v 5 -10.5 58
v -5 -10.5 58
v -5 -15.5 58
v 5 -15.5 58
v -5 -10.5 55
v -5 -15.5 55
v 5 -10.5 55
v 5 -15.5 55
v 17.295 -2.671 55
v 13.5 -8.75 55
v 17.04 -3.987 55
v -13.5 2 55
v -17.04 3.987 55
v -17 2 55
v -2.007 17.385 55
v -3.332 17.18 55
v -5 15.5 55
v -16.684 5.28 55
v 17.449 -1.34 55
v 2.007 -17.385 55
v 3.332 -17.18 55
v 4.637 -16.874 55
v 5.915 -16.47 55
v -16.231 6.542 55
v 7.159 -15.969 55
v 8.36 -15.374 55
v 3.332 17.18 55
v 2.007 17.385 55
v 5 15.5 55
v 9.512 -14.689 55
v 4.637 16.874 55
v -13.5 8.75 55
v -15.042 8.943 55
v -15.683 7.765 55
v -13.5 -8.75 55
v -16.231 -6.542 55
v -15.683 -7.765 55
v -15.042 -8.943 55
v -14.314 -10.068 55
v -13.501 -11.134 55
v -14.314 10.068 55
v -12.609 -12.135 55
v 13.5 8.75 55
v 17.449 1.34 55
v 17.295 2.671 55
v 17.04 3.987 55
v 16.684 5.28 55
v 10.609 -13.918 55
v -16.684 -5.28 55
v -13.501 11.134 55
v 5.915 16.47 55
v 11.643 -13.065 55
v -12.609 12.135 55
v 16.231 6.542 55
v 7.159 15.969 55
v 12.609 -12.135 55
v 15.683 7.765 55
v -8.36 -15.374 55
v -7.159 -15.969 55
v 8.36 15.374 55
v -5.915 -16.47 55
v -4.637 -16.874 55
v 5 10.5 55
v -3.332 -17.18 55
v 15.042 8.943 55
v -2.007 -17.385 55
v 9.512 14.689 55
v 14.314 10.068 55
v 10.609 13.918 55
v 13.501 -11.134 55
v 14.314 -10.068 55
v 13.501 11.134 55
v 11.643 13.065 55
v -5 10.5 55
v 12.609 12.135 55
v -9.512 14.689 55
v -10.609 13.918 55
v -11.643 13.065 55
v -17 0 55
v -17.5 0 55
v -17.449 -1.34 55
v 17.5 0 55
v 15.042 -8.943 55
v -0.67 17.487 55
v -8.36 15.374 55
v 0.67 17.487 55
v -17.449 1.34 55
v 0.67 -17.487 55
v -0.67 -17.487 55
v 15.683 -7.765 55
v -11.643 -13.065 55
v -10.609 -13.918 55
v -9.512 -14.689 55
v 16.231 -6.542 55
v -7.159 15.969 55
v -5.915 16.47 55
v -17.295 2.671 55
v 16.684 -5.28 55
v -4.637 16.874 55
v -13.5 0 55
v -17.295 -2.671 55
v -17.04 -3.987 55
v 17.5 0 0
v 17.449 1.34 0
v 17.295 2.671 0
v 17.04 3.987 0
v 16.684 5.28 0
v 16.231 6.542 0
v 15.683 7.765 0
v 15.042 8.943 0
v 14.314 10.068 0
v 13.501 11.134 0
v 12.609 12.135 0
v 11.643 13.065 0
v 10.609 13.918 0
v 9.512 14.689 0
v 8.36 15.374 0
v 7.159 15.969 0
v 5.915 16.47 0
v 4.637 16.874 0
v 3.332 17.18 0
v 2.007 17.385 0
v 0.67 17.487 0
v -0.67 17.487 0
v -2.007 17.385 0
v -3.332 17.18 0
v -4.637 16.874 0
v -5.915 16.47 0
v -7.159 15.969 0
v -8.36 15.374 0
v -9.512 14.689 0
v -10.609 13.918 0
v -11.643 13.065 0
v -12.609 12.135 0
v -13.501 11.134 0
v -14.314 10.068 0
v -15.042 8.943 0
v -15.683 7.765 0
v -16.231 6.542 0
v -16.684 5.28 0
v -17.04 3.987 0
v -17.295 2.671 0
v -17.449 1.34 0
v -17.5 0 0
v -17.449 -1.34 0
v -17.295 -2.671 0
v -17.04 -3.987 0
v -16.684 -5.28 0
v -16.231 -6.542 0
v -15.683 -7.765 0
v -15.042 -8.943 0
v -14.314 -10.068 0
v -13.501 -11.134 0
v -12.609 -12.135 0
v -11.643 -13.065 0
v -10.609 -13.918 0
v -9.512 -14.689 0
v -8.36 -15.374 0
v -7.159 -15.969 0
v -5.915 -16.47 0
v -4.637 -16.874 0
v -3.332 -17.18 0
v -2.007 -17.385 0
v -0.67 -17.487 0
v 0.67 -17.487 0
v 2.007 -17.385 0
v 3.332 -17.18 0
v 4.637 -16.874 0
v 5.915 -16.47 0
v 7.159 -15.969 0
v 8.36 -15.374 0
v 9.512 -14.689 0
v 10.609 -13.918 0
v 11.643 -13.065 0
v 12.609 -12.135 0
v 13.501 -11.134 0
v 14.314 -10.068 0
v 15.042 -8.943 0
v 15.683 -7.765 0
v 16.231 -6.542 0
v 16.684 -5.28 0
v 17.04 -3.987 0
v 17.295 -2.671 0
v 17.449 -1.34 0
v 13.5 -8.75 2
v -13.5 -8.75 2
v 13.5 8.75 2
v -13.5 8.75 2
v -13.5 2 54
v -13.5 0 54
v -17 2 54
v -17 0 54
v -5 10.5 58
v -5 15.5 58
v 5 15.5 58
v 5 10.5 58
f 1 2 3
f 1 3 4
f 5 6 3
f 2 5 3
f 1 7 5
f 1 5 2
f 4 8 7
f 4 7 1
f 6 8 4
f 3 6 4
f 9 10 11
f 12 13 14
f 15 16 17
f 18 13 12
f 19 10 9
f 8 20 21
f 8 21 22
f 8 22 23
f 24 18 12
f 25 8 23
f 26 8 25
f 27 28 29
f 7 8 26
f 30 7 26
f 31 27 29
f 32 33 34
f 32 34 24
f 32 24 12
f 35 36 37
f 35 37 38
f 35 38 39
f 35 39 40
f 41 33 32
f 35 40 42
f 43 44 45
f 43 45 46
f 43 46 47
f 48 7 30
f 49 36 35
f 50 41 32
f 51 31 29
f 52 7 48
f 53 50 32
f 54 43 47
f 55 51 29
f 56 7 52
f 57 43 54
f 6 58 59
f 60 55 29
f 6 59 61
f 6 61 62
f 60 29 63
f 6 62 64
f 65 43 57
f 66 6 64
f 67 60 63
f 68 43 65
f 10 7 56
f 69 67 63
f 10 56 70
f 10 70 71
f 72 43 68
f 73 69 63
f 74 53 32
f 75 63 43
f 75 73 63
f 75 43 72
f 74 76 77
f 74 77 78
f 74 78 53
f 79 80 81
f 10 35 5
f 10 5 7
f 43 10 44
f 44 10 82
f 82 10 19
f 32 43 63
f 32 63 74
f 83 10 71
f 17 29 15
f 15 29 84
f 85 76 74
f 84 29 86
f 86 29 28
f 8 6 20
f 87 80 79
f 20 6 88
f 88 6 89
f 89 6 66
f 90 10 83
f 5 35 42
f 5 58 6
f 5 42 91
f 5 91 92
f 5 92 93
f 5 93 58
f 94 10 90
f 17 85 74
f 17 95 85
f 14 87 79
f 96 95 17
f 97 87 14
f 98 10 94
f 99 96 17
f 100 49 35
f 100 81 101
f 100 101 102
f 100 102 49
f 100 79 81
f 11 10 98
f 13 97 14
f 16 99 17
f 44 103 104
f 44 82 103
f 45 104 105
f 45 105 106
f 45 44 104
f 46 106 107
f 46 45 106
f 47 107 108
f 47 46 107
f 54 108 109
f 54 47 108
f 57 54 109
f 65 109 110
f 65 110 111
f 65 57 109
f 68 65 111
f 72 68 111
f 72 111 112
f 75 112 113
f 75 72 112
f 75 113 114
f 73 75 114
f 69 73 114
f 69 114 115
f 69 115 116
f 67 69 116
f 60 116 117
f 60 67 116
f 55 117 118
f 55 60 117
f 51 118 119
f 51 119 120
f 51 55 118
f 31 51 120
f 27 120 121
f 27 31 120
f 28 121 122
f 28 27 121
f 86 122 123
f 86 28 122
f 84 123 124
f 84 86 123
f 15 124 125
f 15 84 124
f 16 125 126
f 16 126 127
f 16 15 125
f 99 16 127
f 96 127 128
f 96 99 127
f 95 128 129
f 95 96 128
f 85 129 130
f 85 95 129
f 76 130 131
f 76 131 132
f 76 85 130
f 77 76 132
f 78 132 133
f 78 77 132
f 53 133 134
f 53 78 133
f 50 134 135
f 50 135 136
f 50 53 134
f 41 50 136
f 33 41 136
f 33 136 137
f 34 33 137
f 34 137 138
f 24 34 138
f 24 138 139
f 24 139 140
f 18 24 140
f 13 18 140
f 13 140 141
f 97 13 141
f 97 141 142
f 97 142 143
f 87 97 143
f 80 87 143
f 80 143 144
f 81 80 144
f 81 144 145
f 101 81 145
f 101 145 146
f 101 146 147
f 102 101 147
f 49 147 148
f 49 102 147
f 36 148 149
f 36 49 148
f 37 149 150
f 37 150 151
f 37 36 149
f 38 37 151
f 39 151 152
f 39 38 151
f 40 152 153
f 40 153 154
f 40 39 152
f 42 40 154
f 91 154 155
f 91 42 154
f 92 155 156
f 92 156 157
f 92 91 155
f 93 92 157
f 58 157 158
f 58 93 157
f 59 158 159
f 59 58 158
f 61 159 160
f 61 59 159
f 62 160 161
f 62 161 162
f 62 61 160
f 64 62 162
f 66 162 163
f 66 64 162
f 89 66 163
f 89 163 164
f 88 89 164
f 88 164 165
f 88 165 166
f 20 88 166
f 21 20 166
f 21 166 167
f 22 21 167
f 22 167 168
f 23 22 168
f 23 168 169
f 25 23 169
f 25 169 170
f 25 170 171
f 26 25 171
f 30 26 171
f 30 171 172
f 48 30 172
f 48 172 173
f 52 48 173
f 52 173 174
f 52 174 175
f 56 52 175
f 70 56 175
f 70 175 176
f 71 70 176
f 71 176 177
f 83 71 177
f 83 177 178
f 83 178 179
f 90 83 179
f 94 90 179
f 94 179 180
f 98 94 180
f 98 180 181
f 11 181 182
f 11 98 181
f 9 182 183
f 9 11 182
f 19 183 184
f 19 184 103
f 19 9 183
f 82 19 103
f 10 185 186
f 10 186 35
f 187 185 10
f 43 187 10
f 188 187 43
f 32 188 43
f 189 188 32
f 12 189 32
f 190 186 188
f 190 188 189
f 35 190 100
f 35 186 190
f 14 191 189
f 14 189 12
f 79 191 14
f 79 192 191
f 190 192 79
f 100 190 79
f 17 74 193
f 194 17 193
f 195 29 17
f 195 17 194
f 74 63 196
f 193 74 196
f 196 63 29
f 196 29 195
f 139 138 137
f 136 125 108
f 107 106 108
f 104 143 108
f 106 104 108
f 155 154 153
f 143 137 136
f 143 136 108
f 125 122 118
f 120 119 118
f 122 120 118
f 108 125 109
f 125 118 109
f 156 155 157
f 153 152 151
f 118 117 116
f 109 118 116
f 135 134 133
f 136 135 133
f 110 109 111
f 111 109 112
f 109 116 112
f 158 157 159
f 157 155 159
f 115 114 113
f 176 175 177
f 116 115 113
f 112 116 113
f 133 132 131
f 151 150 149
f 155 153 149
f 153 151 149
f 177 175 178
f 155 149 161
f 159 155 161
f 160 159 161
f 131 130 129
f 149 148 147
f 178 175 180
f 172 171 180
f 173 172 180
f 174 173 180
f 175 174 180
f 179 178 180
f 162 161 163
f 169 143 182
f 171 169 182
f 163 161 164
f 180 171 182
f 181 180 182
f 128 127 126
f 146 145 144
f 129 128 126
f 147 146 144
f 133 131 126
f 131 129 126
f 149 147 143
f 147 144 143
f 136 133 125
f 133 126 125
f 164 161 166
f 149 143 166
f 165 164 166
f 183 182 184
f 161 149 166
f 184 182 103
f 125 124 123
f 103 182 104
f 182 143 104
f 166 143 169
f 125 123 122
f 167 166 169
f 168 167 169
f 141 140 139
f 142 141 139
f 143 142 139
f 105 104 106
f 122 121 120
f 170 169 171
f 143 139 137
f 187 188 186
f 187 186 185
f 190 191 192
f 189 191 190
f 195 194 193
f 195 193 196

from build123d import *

# Parameters (mm, degrees)
BOX003_W       = 4
BOX003_H       = 2
BOX003_DEPTH   = 2
BOX_W          = 27
BOX_H          = 17.5
BOX_DEPTH      = 53
CYLINDER_R     = 17.5
CYLINDER_DEPTH = 55
BOX001_W       = 10
BOX001_H       = 5
BOX001_DEPTH   = 3
BOX002_W       = 10
BOX002_H       = 5
BOX002_DEPTH   = 3


with BuildPart() as box003:
    # Box003 → Box003 (new body)
    with BuildSketch(Plane(origin=(-17, 0, 54), x_dir=(1, 0, 0), z_dir=(0, 0, 1))):
        with Locations((2, 1)):
            Rectangle(BOX003_W, BOX003_H)
    extrude(amount=BOX003_DEPTH)


with BuildPart() as box:
    # Box → Box (new body)
    with BuildSketch(Plane(origin=(-13.5, -8.75, 2), x_dir=(1, 0, 0), z_dir=(0, 0, 1))):
        with Locations((13.5, 8.75)):
            Rectangle(BOX_W, BOX_H)
    extrude(amount=BOX_DEPTH)


with BuildPart() as cut:
    # Cylinder → Cylinder (new body)
    with BuildSketch(Plane.XY):
        Circle(CYLINDER_R)
    extrude(amount=CYLINDER_DEPTH)

    # Cut: cut Box
    add(box.part, mode=Mode.SUBTRACT)


with BuildPart() as fusion:
    # Box001 → Box001 (new body)
    with BuildSketch(Plane(origin=(-5, 10.5, 55), x_dir=(1, 0, 0), z_dir=(0, 0, 1))):
        with Locations((5, 2.5)):
            Rectangle(BOX001_W, BOX001_H)
    extrude(amount=BOX001_DEPTH)

    # Fusion: union Cut
    add(cut.part)


with BuildPart() as cut001:
    # Box002 → Box002 (new body)
    with BuildSketch(Plane(origin=(-5, -15.5, 55), x_dir=(1, 0, 0), z_dir=(0, 0, 1))):
        with Locations((5, 2.5)):
            Rectangle(BOX002_W, BOX002_H)
    extrude(amount=BOX002_DEPTH)

    # Fusion001: union Fusion
    add(fusion.part)

    # Cut001: cut Box003
    add(box003.part, mode=Mode.SUBTRACT)


solid = cut001.part
